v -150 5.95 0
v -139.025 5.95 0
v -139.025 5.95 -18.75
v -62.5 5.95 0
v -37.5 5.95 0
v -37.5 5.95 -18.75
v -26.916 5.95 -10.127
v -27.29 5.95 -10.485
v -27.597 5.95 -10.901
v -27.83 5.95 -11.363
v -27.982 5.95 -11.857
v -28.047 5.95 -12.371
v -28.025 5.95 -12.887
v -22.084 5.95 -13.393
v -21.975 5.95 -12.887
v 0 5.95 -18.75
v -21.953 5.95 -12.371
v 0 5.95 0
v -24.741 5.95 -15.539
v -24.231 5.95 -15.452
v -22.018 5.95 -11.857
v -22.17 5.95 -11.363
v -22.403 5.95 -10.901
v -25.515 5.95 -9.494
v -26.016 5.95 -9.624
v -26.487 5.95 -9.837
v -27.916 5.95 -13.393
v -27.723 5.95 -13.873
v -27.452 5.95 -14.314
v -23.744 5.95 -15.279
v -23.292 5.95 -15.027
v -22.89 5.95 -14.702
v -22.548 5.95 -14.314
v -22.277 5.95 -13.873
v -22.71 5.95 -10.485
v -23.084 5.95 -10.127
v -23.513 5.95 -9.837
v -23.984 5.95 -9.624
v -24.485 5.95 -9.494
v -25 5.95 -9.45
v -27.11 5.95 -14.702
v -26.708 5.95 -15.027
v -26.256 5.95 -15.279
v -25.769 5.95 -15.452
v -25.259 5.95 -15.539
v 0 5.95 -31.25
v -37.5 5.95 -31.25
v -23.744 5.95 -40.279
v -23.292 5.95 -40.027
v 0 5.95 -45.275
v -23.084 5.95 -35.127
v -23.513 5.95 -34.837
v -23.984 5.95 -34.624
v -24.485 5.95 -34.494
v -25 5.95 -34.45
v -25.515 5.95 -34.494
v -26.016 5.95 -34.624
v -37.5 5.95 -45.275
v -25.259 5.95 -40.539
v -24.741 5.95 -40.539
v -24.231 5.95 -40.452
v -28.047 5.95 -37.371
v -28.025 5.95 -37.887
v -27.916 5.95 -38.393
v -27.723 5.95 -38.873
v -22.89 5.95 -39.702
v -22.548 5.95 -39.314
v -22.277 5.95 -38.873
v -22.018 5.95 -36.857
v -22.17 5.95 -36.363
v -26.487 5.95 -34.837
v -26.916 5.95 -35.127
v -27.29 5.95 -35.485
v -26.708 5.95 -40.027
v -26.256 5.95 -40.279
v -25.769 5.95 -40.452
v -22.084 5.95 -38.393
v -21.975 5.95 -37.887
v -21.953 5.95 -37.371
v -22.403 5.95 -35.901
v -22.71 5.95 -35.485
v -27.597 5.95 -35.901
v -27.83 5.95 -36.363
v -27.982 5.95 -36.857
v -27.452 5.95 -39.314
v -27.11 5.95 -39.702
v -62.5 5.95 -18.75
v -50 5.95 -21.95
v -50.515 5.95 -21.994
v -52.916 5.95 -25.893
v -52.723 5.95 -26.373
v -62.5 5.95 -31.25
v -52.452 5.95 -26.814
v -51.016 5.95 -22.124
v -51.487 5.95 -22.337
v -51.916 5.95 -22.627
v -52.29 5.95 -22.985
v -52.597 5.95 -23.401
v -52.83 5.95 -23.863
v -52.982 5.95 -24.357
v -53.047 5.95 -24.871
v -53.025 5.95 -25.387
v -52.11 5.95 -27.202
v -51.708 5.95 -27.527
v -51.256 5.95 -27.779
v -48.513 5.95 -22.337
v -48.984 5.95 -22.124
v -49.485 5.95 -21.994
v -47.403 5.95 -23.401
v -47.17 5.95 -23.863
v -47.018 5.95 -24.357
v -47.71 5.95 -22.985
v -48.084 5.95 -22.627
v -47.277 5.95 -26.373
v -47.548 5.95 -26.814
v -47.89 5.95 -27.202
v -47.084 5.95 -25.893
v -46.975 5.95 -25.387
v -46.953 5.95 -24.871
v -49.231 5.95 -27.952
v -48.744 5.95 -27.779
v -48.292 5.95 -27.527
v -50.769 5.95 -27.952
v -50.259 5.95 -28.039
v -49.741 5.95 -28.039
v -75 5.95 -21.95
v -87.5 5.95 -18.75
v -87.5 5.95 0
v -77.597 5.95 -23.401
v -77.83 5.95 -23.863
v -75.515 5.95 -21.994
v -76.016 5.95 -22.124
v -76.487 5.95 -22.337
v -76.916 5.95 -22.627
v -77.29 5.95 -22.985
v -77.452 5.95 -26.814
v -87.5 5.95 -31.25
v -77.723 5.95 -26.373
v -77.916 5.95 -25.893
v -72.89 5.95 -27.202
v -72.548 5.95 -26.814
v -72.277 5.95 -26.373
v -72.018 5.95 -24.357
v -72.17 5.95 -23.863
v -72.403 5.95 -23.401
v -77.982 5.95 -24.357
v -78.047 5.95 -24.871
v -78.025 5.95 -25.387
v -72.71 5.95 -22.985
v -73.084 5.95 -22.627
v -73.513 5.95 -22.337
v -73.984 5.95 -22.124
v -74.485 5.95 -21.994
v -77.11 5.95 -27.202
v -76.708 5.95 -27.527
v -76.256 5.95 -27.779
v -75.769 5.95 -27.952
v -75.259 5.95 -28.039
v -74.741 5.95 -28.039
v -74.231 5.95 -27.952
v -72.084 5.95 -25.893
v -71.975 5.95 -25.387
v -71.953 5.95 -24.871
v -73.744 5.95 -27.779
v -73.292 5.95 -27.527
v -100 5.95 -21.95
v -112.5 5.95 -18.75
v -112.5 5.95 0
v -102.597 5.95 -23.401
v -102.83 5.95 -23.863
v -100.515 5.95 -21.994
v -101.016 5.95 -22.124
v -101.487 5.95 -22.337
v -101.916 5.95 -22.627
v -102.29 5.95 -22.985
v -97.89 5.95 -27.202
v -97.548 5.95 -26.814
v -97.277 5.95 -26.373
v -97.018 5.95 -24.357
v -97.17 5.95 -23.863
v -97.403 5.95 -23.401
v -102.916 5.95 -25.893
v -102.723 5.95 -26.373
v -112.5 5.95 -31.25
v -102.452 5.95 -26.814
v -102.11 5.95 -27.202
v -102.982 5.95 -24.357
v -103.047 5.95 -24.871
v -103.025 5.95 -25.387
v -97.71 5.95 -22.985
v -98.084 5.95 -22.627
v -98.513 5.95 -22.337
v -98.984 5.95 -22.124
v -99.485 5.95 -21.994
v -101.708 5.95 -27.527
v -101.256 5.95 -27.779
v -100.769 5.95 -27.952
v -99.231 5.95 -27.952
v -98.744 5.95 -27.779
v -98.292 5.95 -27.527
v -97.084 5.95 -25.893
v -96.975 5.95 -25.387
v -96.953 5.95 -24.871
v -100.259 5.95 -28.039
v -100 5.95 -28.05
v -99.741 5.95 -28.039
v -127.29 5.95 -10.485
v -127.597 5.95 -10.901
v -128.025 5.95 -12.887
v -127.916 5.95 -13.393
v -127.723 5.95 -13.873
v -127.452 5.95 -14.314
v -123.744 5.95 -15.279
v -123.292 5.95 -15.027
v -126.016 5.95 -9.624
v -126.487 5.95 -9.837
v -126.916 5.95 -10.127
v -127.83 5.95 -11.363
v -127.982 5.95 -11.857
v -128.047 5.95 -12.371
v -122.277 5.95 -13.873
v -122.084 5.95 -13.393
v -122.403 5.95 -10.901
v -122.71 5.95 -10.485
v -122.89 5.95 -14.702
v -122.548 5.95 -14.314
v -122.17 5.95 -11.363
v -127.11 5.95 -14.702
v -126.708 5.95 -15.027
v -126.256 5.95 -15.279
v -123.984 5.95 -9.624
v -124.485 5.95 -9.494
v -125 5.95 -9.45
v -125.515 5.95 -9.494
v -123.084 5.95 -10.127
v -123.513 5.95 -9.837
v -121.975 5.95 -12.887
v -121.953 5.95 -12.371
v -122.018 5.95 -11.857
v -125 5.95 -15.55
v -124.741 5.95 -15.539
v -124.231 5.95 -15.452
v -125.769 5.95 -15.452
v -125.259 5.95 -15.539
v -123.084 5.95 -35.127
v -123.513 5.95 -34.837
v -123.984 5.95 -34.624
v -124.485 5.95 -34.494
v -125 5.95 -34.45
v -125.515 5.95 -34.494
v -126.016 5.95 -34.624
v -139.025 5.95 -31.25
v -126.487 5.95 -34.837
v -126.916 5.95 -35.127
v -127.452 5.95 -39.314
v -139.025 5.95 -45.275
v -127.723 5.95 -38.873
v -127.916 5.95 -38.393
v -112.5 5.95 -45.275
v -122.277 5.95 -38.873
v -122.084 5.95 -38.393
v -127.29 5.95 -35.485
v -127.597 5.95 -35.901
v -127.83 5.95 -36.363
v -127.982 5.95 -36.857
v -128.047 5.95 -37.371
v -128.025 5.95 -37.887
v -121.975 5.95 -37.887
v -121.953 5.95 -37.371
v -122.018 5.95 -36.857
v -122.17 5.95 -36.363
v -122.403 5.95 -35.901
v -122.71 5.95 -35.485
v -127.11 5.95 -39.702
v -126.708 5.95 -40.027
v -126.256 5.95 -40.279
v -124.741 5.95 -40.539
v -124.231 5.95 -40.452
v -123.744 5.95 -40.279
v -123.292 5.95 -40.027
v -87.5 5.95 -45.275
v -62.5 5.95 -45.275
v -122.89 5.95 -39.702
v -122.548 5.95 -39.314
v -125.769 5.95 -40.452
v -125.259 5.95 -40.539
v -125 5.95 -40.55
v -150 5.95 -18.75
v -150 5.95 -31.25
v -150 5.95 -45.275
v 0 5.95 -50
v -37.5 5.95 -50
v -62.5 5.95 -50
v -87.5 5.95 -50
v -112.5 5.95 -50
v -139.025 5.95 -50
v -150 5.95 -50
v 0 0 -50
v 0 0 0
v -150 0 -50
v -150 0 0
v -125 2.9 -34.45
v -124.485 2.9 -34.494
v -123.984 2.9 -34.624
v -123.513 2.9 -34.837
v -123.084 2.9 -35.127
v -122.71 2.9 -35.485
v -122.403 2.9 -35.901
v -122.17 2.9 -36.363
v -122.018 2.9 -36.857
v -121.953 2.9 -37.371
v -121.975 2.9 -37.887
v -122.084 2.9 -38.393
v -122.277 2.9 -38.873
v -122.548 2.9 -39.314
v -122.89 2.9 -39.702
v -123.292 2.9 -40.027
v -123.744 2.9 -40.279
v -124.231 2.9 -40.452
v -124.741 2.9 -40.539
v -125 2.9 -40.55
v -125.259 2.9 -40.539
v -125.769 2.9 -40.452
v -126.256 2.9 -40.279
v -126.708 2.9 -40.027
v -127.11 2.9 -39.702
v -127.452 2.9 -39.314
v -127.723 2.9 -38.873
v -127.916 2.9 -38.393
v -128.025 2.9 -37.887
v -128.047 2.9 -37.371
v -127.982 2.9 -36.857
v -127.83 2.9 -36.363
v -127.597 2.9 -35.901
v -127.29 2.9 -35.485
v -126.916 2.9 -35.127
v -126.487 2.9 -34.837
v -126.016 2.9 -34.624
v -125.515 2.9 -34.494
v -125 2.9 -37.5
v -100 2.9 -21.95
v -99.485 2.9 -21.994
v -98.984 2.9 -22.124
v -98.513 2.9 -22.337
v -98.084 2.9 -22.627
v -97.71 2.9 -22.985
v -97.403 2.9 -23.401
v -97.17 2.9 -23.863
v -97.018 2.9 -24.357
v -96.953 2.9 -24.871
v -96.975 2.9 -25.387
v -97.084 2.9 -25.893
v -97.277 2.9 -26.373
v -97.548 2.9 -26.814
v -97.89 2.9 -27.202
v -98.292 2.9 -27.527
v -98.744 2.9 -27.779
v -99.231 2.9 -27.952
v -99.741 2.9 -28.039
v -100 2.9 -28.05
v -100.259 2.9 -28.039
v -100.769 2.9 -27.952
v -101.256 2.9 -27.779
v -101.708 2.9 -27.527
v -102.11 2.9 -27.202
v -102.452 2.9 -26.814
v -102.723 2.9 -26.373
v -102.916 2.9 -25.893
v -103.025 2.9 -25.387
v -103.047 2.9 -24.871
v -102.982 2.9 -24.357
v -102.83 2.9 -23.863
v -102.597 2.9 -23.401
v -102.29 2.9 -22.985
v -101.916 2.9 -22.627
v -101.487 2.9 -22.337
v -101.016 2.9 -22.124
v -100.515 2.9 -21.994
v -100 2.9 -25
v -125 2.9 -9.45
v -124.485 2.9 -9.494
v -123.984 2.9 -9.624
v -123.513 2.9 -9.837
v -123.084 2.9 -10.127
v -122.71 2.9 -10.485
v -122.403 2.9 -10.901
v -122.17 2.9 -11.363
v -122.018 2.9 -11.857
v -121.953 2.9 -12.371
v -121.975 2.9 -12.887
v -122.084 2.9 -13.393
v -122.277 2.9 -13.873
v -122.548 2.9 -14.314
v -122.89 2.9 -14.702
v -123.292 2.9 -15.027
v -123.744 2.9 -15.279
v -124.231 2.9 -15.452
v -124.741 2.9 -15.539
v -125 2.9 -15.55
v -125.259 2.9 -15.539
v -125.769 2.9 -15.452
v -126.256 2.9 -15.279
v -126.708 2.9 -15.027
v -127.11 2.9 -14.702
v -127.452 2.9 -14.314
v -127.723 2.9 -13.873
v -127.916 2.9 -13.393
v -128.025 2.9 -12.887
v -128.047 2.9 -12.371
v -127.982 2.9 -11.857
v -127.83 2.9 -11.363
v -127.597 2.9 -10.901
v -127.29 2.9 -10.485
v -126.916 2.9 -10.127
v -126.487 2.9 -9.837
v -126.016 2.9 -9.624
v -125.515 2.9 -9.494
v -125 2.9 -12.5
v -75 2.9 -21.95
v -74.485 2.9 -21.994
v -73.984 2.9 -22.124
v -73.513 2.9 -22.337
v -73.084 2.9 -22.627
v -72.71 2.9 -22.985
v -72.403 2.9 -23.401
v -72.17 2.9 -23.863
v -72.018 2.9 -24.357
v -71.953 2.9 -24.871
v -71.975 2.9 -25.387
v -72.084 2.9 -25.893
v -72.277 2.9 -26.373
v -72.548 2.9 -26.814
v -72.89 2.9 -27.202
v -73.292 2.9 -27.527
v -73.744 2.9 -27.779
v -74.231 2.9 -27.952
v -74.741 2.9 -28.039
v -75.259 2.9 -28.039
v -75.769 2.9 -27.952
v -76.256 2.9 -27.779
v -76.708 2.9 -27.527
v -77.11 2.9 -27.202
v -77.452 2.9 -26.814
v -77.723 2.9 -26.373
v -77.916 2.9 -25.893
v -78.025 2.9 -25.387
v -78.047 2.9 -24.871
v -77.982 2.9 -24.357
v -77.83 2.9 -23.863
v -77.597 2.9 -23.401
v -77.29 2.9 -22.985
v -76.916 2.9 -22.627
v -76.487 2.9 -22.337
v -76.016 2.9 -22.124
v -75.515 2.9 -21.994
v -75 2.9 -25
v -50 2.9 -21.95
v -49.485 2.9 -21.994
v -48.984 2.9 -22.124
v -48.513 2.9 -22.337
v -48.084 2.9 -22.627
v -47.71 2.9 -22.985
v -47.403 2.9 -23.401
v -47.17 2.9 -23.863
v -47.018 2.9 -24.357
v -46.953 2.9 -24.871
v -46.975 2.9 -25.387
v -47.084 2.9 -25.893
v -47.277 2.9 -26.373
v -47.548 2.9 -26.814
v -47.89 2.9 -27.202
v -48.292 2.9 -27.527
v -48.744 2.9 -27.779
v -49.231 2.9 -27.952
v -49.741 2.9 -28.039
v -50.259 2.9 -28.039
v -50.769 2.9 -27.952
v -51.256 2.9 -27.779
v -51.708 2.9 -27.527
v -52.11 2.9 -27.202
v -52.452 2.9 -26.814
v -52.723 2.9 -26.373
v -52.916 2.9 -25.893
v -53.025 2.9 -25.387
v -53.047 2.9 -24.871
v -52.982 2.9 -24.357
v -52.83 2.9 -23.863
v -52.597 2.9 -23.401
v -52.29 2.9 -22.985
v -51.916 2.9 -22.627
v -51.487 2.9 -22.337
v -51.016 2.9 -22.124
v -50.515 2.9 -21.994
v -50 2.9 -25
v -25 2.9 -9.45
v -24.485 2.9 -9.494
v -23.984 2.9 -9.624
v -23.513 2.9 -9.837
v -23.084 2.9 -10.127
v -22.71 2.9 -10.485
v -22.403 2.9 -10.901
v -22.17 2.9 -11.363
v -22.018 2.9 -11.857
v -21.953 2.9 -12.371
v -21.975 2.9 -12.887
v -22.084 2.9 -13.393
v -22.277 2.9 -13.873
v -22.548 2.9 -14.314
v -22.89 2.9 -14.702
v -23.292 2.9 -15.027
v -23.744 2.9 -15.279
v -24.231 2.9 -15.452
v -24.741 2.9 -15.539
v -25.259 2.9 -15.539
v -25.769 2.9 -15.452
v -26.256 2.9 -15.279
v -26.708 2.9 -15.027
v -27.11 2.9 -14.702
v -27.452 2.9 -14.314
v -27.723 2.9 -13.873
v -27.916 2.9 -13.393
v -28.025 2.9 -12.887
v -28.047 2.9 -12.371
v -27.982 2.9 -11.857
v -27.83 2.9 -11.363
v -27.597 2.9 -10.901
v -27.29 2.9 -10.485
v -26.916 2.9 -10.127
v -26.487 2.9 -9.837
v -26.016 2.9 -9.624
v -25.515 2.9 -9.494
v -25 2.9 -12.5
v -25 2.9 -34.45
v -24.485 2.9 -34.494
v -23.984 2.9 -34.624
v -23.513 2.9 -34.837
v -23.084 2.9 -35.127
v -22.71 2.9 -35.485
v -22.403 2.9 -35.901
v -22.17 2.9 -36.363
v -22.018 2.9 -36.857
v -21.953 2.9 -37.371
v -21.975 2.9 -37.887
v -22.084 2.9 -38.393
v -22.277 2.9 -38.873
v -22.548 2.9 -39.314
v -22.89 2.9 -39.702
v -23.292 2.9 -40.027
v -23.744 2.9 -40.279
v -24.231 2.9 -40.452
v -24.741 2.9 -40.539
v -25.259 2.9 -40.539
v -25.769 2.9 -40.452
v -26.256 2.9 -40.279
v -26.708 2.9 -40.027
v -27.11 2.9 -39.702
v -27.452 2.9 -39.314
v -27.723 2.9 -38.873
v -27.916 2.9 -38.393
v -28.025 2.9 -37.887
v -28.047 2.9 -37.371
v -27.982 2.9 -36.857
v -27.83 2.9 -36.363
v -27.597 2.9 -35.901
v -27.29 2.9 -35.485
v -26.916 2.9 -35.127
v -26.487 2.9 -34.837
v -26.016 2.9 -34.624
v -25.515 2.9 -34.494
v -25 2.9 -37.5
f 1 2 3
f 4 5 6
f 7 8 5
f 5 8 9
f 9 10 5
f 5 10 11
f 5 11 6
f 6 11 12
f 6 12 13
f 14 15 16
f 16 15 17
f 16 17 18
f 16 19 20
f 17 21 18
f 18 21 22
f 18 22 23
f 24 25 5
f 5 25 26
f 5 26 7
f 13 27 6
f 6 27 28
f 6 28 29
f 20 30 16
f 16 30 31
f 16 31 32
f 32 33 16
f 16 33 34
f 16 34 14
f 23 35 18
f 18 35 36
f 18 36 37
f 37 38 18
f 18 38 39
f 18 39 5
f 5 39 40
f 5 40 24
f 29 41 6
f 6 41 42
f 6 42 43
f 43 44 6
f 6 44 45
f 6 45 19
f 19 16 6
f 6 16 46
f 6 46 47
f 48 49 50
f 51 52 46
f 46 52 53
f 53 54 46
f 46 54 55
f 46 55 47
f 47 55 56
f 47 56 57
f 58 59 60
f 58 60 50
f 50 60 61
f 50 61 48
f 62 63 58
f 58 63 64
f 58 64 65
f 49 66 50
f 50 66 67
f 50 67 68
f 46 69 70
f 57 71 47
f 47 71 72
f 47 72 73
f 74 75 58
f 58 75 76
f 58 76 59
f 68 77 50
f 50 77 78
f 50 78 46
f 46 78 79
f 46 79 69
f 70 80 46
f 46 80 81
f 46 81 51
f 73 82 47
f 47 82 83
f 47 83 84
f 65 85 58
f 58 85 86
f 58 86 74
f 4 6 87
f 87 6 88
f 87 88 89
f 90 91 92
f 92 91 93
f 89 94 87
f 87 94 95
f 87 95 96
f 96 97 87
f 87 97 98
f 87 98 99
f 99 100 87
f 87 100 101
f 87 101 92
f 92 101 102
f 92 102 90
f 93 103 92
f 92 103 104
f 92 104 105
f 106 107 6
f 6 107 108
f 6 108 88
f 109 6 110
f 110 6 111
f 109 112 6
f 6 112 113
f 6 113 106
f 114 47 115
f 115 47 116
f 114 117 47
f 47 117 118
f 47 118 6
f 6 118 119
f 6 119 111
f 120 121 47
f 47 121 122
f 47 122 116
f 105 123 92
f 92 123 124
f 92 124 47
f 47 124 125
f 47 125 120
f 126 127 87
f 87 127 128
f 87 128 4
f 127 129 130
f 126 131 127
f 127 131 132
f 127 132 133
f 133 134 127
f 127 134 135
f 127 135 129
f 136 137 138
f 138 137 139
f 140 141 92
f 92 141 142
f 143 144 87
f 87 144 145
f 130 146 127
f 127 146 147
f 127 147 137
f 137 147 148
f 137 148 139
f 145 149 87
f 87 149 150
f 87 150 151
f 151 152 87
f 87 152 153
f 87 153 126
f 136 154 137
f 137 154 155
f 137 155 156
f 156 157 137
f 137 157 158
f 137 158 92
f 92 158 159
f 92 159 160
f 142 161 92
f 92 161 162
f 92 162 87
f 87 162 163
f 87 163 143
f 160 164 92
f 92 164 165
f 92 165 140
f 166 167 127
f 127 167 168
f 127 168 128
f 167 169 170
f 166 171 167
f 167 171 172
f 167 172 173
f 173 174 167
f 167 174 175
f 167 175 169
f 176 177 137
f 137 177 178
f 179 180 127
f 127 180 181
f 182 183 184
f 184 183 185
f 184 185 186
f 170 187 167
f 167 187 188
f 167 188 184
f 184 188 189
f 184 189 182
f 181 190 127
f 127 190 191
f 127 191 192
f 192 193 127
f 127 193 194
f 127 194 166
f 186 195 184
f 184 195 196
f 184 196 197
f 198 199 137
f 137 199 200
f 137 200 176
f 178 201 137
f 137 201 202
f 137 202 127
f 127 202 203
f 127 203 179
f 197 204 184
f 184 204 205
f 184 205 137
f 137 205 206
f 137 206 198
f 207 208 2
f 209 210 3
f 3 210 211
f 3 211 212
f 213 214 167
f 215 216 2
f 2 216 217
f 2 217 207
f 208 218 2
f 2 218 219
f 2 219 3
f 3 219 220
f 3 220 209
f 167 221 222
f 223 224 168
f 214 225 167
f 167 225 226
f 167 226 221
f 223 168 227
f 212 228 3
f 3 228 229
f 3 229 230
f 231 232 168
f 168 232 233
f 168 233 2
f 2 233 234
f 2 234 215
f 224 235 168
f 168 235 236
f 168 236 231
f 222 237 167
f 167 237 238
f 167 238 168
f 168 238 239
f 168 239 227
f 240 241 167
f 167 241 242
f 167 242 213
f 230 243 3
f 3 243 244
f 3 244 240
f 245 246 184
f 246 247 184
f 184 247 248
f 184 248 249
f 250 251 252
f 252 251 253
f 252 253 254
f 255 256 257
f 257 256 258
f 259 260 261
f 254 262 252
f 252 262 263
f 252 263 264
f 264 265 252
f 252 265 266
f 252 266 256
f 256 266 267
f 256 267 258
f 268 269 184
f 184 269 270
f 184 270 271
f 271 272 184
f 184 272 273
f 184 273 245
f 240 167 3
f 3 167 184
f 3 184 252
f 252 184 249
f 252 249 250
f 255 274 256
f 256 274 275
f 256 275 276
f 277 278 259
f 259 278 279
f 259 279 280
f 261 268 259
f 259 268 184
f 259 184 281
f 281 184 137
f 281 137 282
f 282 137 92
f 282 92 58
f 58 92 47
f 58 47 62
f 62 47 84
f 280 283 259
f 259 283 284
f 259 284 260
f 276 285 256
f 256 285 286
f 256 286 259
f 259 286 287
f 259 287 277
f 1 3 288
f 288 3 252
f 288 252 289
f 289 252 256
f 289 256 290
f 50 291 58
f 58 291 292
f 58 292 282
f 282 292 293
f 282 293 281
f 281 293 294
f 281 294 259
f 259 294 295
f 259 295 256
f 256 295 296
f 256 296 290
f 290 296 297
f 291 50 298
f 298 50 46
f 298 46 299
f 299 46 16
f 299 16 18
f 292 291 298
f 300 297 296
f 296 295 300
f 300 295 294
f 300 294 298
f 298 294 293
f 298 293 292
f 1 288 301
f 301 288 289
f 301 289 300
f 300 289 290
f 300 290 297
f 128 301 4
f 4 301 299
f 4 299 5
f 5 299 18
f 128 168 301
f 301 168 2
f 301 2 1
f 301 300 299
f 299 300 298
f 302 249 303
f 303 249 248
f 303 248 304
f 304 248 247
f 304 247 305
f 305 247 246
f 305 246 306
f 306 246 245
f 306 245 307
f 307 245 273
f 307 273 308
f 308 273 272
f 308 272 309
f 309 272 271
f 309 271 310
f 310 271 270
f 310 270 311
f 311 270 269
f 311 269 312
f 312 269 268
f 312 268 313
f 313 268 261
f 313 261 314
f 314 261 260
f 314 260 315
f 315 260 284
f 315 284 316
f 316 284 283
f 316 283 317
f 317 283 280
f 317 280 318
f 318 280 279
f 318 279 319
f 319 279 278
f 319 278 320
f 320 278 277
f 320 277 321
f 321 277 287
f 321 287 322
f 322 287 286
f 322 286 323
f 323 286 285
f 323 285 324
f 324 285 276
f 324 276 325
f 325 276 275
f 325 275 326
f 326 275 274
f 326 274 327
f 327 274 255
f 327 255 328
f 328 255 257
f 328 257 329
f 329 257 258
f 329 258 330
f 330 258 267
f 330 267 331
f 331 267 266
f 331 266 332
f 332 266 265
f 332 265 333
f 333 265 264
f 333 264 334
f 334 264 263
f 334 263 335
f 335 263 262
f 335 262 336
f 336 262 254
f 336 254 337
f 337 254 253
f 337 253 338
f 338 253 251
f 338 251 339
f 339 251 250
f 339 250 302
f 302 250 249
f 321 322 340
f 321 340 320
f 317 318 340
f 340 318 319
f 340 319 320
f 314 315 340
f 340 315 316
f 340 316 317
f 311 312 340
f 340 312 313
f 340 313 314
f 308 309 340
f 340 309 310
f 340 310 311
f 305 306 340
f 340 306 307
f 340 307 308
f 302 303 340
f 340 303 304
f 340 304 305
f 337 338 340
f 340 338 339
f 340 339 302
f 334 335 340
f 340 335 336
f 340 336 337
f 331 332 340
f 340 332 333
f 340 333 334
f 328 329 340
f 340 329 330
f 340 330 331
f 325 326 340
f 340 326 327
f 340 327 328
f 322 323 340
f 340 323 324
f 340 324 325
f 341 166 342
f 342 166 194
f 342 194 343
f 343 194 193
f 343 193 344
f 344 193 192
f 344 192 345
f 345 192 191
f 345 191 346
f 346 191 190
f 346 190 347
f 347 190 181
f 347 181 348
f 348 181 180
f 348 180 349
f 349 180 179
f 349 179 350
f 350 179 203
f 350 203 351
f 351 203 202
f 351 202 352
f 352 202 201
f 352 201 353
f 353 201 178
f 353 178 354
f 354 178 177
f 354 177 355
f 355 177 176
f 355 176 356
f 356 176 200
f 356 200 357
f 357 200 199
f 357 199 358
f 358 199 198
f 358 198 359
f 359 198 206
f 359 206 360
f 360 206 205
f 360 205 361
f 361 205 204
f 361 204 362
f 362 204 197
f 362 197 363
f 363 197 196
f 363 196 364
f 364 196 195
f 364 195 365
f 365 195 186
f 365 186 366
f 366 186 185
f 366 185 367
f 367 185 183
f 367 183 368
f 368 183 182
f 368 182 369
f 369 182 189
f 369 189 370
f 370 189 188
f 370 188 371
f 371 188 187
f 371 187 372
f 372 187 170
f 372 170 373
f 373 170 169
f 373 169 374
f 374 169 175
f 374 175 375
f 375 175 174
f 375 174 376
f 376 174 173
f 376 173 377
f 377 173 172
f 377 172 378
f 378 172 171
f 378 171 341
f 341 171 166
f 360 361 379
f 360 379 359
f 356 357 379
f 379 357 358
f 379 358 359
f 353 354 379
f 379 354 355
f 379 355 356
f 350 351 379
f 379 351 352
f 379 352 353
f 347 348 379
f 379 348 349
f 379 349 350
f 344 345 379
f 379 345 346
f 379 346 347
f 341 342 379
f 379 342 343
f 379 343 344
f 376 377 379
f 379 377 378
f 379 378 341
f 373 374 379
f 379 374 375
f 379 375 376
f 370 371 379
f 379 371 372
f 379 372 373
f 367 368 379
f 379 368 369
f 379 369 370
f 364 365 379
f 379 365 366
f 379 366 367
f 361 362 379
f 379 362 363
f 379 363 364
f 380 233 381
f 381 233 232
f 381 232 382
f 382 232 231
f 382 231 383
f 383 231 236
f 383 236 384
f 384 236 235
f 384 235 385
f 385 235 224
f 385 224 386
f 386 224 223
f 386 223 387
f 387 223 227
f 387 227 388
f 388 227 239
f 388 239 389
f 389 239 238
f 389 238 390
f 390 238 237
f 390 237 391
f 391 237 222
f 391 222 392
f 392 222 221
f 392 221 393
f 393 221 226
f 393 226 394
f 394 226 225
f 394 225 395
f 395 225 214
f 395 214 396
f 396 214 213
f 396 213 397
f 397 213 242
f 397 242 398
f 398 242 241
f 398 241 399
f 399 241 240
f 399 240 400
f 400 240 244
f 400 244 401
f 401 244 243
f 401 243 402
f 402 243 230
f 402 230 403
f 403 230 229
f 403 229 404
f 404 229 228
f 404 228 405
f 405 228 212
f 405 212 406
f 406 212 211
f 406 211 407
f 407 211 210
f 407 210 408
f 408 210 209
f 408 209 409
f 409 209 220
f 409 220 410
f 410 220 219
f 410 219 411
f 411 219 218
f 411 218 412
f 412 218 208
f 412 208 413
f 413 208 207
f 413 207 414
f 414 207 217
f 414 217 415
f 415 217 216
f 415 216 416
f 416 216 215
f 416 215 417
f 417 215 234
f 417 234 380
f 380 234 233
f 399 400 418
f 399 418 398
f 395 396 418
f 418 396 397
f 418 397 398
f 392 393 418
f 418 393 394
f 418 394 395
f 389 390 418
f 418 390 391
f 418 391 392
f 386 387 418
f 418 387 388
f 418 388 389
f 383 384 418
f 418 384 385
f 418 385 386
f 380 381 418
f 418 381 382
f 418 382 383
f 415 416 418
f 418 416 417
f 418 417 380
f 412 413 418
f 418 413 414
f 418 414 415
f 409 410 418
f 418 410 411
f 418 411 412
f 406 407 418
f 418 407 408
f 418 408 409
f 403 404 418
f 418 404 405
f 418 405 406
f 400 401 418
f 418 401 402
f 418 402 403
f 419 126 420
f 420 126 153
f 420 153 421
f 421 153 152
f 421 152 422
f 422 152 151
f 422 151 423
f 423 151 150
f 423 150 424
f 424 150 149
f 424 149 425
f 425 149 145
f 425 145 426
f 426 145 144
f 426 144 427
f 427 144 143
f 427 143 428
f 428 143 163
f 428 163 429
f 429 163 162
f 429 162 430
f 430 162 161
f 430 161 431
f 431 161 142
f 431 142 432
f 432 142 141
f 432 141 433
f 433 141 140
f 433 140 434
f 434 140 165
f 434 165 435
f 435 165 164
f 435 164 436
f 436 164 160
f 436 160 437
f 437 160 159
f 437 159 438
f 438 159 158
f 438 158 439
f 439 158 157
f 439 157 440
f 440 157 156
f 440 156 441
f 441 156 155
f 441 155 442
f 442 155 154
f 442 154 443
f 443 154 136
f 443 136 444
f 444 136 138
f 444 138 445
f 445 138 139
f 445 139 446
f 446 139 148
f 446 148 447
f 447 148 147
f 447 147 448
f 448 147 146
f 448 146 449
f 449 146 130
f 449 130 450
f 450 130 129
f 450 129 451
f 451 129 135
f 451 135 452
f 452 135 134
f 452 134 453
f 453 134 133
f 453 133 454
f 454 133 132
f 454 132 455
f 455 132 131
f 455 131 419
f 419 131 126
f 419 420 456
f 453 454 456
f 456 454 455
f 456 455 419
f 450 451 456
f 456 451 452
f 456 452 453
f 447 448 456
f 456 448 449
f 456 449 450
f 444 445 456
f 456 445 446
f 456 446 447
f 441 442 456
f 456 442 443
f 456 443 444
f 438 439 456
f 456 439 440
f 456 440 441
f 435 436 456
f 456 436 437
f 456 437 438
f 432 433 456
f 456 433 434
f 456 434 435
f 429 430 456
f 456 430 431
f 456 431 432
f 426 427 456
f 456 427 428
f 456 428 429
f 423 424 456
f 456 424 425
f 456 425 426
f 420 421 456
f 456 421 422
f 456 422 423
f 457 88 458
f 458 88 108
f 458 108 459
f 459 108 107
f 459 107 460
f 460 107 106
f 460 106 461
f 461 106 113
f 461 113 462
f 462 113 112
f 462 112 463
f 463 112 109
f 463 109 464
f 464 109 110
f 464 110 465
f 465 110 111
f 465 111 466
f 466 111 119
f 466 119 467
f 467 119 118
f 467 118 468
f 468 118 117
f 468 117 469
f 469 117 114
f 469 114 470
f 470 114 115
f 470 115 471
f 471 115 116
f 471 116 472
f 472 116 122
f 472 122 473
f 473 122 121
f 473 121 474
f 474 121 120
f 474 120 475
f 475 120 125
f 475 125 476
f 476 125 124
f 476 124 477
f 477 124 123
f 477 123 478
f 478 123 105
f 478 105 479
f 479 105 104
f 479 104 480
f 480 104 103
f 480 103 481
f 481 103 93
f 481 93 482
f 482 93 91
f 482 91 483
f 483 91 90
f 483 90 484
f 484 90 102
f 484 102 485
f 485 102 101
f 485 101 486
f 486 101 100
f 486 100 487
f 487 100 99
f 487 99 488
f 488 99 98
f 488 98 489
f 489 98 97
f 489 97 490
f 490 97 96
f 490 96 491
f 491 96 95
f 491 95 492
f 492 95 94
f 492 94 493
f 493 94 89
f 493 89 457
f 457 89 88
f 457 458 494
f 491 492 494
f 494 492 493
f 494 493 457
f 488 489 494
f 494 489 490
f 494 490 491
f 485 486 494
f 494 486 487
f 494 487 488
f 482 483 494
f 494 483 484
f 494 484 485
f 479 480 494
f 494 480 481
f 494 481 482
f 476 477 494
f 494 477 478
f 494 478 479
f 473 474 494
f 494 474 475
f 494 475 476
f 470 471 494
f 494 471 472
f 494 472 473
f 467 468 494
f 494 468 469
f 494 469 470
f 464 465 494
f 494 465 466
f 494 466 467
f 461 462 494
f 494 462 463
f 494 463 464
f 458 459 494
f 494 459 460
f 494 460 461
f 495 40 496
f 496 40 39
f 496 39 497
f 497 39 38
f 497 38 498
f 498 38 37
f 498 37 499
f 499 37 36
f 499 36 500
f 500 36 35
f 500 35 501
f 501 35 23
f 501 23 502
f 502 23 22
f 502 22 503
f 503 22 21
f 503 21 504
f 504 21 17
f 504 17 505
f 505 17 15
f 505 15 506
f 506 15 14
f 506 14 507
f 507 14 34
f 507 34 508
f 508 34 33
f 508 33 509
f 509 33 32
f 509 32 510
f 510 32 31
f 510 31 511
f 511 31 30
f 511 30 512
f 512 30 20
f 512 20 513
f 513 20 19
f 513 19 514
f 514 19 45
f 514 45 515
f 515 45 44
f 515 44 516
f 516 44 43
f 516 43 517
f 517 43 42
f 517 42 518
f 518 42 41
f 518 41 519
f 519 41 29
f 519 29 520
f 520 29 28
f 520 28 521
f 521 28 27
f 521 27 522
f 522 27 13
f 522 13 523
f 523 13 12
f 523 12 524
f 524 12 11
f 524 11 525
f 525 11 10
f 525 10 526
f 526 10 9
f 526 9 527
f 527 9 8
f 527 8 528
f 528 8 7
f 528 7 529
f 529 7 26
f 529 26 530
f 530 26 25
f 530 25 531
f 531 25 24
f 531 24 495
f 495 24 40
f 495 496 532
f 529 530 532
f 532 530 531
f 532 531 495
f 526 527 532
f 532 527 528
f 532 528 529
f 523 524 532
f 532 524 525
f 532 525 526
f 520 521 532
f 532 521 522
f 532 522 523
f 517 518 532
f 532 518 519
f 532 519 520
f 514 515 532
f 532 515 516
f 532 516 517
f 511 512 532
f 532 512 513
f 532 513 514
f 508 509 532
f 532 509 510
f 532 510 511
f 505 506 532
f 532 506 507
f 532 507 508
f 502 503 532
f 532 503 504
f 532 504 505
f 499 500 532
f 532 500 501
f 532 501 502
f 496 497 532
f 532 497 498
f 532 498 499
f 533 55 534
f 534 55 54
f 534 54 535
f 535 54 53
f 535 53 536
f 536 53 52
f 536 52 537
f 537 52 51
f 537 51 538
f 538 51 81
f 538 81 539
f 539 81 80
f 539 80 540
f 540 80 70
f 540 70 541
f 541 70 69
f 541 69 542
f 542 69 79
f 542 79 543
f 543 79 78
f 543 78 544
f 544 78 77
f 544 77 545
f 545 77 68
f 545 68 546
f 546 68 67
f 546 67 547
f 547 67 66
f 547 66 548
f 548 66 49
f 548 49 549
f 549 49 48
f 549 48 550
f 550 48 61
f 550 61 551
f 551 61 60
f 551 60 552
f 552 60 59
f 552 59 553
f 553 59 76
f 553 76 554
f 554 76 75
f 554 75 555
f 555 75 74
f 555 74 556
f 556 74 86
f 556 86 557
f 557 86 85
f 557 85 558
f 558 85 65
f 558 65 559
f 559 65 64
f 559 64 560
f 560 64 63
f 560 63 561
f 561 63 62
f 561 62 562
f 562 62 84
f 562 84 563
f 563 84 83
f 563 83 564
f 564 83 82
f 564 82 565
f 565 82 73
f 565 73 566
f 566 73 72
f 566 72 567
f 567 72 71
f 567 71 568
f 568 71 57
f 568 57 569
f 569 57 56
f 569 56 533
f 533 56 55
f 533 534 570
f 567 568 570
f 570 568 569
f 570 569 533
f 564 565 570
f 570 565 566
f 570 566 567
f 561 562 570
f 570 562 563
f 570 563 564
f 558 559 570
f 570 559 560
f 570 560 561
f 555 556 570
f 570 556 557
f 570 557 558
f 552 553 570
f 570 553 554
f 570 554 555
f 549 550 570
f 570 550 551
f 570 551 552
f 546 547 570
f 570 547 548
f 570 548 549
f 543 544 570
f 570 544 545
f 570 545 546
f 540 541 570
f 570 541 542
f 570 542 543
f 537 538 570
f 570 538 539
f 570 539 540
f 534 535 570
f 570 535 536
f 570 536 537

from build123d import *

# Parameters (mm, degrees)
SKETCH1_W           = 150
SKETCH1_H           = 50
BOSS_EXTRUDE1_DEPTH = 5.95
SKETCH2_R           = 3.05
CUT_EXTRUDE1_DEPTH  = 3.05


with BuildPart() as part:
    # Sketch1 → Boss-Extrude1 (new body)
    with BuildSketch(Plane(origin=(0, 0, 0), x_dir=(1, 0, 0), z_dir=(0, 1, 0))):
        with Locations((-75, 25)):
            Rectangle(SKETCH1_W, SKETCH1_H)
    extrude(amount=BOSS_EXTRUDE1_DEPTH)

    # Sketch2 → Cut-Extrude1 (cut)
    with BuildSketch(Plane(origin=(0, 5.95, 0), x_dir=(1, 0, 0), z_dir=(0, 1, 0))):
        with Locations((-25, 37.5)):
            Circle(SKETCH2_R)
        with Locations((-25, 12.5)):
            Circle(SKETCH2_R)
        with Locations((-50, 25)):
            Circle(SKETCH2_R)
        with Locations((-75, 25)):
            Circle(SKETCH2_R)
        with Locations((-100, 25)):
            Circle(SKETCH2_R)
        with Locations((-125, 12.5)):
            Circle(SKETCH2_R)
        with Locations((-125, 37.5)):
            Circle(SKETCH2_R)
    extrude(amount=-CUT_EXTRUDE1_DEPTH, mode=Mode.SUBTRACT)


solid = part.part
